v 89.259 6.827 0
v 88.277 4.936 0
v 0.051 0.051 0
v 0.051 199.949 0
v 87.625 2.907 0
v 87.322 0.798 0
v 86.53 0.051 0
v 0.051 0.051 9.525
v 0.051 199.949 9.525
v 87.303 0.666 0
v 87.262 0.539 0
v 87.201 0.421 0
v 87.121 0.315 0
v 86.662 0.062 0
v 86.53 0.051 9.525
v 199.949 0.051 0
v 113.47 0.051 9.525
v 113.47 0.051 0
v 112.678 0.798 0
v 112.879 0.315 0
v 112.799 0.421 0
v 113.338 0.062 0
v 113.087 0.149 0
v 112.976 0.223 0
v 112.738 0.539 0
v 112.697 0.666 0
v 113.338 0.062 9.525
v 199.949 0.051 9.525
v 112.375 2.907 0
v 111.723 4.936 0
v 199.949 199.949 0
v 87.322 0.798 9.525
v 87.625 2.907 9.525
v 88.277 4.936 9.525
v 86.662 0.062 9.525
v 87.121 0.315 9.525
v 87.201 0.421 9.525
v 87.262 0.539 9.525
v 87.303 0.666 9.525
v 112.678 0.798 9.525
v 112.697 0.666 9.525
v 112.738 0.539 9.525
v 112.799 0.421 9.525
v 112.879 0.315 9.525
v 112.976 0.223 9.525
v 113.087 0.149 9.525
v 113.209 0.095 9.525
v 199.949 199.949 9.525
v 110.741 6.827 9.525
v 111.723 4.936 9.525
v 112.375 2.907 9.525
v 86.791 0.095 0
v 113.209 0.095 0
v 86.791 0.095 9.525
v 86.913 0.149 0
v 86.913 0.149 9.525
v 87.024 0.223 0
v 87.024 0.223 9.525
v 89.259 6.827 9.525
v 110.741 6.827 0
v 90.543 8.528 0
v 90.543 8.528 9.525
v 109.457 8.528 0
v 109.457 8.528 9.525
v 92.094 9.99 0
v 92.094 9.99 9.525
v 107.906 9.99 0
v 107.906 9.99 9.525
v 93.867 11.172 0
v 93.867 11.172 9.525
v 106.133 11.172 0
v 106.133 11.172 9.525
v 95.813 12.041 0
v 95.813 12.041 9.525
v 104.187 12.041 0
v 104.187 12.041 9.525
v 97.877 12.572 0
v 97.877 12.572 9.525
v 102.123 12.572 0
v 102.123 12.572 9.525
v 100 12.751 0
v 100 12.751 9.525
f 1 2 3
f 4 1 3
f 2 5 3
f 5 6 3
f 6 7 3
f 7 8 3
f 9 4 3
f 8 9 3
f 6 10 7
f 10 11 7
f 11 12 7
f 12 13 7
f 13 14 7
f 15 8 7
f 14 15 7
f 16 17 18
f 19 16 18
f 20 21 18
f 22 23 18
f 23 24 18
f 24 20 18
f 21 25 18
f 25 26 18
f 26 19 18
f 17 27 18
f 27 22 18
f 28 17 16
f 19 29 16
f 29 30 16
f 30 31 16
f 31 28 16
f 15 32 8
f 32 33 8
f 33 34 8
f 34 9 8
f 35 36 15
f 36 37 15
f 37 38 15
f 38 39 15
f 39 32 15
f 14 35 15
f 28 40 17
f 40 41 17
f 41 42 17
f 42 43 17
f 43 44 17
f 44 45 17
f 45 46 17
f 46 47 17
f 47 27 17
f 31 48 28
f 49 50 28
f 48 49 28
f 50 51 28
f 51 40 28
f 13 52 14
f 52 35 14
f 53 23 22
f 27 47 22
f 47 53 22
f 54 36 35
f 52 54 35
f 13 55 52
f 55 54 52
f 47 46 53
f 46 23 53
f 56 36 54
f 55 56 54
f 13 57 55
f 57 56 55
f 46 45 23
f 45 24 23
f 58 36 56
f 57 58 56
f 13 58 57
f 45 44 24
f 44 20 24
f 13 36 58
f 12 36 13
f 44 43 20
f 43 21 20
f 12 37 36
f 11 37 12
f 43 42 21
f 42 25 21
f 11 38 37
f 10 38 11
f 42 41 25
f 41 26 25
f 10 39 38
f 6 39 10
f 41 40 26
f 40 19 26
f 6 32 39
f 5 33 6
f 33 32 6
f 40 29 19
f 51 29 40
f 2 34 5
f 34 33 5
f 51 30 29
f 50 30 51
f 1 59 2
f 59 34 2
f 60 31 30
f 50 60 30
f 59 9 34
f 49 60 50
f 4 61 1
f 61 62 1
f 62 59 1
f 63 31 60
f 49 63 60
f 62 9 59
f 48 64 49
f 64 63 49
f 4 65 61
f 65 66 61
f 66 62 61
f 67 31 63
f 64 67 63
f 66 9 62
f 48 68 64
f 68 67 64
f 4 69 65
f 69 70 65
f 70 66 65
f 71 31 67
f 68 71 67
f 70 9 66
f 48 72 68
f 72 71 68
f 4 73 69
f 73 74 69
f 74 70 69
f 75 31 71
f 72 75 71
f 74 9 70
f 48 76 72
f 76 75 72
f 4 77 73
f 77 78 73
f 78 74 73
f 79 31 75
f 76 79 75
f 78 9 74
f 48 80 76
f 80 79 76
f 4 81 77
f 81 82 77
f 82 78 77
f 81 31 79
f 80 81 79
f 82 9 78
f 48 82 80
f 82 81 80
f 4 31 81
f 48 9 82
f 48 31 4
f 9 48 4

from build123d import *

# Parameters (mm, degrees)
SKETCH1_W           = 200
SKETCH1_H           = 200
BOSS_EXTRUDE1_DEPTH = 9.525
SKETCH5_W           = 200
SKETCH5_H           = 200
SKETCH5_W_2         = 199.8984
SKETCH5_H_2         = 199.8984
CUT_EXTRUDE2_DEPTH  = 284.003048791
CUT_EXTRUDE1_DEPTH  = 9.525
FILLET1_R           = 0.79375


with BuildPart() as part:
    # Sketch1 → Boss-Extrude1 (new body)
    with BuildSketch(Plane.XY):
        with Locations((100, 100)):
            Rectangle(SKETCH1_W, SKETCH1_H)
    extrude(amount=BOSS_EXTRUDE1_DEPTH)

    # Sketch5 → Cut-Extrude2 (cut, through all)
    with BuildSketch(Plane.XY.offset(9.525)):
        with Locations((100, 100)):
            Rectangle(SKETCH5_W, SKETCH5_H)
        with Locations((100, 100)):
            Rectangle(SKETCH5_W_2, SKETCH5_H_2, mode=Mode.SUBTRACT)
    extrude(amount=-CUT_EXTRUDE2_DEPTH, mode=Mode.SUBTRACT)

    # Sketch2 → Cut-Extrude1 (cut)
    with BuildSketch(Plane.XY.offset(9.525)):
        with BuildLine():
            Line((87.3, 0.0508), (112.7, 0.0508))
            ThreePointArc((112.7, 0.0508), (100, 12.7508), (87.3, 0.0508))
        make_face()
    extrude(amount=-CUT_EXTRUDE1_DEPTH, mode=Mode.SUBTRACT)

    # Fillet1
    fillet1_edges = [part.edges().sort_by_distance(p)[0] for p in [
        (87.3, 0.0508, 4.7625),
        (112.7, 0.0508, 4.7625),
    ]]
    fillet(fillet1_edges, radius=FILLET1_R)


solid = part.part
